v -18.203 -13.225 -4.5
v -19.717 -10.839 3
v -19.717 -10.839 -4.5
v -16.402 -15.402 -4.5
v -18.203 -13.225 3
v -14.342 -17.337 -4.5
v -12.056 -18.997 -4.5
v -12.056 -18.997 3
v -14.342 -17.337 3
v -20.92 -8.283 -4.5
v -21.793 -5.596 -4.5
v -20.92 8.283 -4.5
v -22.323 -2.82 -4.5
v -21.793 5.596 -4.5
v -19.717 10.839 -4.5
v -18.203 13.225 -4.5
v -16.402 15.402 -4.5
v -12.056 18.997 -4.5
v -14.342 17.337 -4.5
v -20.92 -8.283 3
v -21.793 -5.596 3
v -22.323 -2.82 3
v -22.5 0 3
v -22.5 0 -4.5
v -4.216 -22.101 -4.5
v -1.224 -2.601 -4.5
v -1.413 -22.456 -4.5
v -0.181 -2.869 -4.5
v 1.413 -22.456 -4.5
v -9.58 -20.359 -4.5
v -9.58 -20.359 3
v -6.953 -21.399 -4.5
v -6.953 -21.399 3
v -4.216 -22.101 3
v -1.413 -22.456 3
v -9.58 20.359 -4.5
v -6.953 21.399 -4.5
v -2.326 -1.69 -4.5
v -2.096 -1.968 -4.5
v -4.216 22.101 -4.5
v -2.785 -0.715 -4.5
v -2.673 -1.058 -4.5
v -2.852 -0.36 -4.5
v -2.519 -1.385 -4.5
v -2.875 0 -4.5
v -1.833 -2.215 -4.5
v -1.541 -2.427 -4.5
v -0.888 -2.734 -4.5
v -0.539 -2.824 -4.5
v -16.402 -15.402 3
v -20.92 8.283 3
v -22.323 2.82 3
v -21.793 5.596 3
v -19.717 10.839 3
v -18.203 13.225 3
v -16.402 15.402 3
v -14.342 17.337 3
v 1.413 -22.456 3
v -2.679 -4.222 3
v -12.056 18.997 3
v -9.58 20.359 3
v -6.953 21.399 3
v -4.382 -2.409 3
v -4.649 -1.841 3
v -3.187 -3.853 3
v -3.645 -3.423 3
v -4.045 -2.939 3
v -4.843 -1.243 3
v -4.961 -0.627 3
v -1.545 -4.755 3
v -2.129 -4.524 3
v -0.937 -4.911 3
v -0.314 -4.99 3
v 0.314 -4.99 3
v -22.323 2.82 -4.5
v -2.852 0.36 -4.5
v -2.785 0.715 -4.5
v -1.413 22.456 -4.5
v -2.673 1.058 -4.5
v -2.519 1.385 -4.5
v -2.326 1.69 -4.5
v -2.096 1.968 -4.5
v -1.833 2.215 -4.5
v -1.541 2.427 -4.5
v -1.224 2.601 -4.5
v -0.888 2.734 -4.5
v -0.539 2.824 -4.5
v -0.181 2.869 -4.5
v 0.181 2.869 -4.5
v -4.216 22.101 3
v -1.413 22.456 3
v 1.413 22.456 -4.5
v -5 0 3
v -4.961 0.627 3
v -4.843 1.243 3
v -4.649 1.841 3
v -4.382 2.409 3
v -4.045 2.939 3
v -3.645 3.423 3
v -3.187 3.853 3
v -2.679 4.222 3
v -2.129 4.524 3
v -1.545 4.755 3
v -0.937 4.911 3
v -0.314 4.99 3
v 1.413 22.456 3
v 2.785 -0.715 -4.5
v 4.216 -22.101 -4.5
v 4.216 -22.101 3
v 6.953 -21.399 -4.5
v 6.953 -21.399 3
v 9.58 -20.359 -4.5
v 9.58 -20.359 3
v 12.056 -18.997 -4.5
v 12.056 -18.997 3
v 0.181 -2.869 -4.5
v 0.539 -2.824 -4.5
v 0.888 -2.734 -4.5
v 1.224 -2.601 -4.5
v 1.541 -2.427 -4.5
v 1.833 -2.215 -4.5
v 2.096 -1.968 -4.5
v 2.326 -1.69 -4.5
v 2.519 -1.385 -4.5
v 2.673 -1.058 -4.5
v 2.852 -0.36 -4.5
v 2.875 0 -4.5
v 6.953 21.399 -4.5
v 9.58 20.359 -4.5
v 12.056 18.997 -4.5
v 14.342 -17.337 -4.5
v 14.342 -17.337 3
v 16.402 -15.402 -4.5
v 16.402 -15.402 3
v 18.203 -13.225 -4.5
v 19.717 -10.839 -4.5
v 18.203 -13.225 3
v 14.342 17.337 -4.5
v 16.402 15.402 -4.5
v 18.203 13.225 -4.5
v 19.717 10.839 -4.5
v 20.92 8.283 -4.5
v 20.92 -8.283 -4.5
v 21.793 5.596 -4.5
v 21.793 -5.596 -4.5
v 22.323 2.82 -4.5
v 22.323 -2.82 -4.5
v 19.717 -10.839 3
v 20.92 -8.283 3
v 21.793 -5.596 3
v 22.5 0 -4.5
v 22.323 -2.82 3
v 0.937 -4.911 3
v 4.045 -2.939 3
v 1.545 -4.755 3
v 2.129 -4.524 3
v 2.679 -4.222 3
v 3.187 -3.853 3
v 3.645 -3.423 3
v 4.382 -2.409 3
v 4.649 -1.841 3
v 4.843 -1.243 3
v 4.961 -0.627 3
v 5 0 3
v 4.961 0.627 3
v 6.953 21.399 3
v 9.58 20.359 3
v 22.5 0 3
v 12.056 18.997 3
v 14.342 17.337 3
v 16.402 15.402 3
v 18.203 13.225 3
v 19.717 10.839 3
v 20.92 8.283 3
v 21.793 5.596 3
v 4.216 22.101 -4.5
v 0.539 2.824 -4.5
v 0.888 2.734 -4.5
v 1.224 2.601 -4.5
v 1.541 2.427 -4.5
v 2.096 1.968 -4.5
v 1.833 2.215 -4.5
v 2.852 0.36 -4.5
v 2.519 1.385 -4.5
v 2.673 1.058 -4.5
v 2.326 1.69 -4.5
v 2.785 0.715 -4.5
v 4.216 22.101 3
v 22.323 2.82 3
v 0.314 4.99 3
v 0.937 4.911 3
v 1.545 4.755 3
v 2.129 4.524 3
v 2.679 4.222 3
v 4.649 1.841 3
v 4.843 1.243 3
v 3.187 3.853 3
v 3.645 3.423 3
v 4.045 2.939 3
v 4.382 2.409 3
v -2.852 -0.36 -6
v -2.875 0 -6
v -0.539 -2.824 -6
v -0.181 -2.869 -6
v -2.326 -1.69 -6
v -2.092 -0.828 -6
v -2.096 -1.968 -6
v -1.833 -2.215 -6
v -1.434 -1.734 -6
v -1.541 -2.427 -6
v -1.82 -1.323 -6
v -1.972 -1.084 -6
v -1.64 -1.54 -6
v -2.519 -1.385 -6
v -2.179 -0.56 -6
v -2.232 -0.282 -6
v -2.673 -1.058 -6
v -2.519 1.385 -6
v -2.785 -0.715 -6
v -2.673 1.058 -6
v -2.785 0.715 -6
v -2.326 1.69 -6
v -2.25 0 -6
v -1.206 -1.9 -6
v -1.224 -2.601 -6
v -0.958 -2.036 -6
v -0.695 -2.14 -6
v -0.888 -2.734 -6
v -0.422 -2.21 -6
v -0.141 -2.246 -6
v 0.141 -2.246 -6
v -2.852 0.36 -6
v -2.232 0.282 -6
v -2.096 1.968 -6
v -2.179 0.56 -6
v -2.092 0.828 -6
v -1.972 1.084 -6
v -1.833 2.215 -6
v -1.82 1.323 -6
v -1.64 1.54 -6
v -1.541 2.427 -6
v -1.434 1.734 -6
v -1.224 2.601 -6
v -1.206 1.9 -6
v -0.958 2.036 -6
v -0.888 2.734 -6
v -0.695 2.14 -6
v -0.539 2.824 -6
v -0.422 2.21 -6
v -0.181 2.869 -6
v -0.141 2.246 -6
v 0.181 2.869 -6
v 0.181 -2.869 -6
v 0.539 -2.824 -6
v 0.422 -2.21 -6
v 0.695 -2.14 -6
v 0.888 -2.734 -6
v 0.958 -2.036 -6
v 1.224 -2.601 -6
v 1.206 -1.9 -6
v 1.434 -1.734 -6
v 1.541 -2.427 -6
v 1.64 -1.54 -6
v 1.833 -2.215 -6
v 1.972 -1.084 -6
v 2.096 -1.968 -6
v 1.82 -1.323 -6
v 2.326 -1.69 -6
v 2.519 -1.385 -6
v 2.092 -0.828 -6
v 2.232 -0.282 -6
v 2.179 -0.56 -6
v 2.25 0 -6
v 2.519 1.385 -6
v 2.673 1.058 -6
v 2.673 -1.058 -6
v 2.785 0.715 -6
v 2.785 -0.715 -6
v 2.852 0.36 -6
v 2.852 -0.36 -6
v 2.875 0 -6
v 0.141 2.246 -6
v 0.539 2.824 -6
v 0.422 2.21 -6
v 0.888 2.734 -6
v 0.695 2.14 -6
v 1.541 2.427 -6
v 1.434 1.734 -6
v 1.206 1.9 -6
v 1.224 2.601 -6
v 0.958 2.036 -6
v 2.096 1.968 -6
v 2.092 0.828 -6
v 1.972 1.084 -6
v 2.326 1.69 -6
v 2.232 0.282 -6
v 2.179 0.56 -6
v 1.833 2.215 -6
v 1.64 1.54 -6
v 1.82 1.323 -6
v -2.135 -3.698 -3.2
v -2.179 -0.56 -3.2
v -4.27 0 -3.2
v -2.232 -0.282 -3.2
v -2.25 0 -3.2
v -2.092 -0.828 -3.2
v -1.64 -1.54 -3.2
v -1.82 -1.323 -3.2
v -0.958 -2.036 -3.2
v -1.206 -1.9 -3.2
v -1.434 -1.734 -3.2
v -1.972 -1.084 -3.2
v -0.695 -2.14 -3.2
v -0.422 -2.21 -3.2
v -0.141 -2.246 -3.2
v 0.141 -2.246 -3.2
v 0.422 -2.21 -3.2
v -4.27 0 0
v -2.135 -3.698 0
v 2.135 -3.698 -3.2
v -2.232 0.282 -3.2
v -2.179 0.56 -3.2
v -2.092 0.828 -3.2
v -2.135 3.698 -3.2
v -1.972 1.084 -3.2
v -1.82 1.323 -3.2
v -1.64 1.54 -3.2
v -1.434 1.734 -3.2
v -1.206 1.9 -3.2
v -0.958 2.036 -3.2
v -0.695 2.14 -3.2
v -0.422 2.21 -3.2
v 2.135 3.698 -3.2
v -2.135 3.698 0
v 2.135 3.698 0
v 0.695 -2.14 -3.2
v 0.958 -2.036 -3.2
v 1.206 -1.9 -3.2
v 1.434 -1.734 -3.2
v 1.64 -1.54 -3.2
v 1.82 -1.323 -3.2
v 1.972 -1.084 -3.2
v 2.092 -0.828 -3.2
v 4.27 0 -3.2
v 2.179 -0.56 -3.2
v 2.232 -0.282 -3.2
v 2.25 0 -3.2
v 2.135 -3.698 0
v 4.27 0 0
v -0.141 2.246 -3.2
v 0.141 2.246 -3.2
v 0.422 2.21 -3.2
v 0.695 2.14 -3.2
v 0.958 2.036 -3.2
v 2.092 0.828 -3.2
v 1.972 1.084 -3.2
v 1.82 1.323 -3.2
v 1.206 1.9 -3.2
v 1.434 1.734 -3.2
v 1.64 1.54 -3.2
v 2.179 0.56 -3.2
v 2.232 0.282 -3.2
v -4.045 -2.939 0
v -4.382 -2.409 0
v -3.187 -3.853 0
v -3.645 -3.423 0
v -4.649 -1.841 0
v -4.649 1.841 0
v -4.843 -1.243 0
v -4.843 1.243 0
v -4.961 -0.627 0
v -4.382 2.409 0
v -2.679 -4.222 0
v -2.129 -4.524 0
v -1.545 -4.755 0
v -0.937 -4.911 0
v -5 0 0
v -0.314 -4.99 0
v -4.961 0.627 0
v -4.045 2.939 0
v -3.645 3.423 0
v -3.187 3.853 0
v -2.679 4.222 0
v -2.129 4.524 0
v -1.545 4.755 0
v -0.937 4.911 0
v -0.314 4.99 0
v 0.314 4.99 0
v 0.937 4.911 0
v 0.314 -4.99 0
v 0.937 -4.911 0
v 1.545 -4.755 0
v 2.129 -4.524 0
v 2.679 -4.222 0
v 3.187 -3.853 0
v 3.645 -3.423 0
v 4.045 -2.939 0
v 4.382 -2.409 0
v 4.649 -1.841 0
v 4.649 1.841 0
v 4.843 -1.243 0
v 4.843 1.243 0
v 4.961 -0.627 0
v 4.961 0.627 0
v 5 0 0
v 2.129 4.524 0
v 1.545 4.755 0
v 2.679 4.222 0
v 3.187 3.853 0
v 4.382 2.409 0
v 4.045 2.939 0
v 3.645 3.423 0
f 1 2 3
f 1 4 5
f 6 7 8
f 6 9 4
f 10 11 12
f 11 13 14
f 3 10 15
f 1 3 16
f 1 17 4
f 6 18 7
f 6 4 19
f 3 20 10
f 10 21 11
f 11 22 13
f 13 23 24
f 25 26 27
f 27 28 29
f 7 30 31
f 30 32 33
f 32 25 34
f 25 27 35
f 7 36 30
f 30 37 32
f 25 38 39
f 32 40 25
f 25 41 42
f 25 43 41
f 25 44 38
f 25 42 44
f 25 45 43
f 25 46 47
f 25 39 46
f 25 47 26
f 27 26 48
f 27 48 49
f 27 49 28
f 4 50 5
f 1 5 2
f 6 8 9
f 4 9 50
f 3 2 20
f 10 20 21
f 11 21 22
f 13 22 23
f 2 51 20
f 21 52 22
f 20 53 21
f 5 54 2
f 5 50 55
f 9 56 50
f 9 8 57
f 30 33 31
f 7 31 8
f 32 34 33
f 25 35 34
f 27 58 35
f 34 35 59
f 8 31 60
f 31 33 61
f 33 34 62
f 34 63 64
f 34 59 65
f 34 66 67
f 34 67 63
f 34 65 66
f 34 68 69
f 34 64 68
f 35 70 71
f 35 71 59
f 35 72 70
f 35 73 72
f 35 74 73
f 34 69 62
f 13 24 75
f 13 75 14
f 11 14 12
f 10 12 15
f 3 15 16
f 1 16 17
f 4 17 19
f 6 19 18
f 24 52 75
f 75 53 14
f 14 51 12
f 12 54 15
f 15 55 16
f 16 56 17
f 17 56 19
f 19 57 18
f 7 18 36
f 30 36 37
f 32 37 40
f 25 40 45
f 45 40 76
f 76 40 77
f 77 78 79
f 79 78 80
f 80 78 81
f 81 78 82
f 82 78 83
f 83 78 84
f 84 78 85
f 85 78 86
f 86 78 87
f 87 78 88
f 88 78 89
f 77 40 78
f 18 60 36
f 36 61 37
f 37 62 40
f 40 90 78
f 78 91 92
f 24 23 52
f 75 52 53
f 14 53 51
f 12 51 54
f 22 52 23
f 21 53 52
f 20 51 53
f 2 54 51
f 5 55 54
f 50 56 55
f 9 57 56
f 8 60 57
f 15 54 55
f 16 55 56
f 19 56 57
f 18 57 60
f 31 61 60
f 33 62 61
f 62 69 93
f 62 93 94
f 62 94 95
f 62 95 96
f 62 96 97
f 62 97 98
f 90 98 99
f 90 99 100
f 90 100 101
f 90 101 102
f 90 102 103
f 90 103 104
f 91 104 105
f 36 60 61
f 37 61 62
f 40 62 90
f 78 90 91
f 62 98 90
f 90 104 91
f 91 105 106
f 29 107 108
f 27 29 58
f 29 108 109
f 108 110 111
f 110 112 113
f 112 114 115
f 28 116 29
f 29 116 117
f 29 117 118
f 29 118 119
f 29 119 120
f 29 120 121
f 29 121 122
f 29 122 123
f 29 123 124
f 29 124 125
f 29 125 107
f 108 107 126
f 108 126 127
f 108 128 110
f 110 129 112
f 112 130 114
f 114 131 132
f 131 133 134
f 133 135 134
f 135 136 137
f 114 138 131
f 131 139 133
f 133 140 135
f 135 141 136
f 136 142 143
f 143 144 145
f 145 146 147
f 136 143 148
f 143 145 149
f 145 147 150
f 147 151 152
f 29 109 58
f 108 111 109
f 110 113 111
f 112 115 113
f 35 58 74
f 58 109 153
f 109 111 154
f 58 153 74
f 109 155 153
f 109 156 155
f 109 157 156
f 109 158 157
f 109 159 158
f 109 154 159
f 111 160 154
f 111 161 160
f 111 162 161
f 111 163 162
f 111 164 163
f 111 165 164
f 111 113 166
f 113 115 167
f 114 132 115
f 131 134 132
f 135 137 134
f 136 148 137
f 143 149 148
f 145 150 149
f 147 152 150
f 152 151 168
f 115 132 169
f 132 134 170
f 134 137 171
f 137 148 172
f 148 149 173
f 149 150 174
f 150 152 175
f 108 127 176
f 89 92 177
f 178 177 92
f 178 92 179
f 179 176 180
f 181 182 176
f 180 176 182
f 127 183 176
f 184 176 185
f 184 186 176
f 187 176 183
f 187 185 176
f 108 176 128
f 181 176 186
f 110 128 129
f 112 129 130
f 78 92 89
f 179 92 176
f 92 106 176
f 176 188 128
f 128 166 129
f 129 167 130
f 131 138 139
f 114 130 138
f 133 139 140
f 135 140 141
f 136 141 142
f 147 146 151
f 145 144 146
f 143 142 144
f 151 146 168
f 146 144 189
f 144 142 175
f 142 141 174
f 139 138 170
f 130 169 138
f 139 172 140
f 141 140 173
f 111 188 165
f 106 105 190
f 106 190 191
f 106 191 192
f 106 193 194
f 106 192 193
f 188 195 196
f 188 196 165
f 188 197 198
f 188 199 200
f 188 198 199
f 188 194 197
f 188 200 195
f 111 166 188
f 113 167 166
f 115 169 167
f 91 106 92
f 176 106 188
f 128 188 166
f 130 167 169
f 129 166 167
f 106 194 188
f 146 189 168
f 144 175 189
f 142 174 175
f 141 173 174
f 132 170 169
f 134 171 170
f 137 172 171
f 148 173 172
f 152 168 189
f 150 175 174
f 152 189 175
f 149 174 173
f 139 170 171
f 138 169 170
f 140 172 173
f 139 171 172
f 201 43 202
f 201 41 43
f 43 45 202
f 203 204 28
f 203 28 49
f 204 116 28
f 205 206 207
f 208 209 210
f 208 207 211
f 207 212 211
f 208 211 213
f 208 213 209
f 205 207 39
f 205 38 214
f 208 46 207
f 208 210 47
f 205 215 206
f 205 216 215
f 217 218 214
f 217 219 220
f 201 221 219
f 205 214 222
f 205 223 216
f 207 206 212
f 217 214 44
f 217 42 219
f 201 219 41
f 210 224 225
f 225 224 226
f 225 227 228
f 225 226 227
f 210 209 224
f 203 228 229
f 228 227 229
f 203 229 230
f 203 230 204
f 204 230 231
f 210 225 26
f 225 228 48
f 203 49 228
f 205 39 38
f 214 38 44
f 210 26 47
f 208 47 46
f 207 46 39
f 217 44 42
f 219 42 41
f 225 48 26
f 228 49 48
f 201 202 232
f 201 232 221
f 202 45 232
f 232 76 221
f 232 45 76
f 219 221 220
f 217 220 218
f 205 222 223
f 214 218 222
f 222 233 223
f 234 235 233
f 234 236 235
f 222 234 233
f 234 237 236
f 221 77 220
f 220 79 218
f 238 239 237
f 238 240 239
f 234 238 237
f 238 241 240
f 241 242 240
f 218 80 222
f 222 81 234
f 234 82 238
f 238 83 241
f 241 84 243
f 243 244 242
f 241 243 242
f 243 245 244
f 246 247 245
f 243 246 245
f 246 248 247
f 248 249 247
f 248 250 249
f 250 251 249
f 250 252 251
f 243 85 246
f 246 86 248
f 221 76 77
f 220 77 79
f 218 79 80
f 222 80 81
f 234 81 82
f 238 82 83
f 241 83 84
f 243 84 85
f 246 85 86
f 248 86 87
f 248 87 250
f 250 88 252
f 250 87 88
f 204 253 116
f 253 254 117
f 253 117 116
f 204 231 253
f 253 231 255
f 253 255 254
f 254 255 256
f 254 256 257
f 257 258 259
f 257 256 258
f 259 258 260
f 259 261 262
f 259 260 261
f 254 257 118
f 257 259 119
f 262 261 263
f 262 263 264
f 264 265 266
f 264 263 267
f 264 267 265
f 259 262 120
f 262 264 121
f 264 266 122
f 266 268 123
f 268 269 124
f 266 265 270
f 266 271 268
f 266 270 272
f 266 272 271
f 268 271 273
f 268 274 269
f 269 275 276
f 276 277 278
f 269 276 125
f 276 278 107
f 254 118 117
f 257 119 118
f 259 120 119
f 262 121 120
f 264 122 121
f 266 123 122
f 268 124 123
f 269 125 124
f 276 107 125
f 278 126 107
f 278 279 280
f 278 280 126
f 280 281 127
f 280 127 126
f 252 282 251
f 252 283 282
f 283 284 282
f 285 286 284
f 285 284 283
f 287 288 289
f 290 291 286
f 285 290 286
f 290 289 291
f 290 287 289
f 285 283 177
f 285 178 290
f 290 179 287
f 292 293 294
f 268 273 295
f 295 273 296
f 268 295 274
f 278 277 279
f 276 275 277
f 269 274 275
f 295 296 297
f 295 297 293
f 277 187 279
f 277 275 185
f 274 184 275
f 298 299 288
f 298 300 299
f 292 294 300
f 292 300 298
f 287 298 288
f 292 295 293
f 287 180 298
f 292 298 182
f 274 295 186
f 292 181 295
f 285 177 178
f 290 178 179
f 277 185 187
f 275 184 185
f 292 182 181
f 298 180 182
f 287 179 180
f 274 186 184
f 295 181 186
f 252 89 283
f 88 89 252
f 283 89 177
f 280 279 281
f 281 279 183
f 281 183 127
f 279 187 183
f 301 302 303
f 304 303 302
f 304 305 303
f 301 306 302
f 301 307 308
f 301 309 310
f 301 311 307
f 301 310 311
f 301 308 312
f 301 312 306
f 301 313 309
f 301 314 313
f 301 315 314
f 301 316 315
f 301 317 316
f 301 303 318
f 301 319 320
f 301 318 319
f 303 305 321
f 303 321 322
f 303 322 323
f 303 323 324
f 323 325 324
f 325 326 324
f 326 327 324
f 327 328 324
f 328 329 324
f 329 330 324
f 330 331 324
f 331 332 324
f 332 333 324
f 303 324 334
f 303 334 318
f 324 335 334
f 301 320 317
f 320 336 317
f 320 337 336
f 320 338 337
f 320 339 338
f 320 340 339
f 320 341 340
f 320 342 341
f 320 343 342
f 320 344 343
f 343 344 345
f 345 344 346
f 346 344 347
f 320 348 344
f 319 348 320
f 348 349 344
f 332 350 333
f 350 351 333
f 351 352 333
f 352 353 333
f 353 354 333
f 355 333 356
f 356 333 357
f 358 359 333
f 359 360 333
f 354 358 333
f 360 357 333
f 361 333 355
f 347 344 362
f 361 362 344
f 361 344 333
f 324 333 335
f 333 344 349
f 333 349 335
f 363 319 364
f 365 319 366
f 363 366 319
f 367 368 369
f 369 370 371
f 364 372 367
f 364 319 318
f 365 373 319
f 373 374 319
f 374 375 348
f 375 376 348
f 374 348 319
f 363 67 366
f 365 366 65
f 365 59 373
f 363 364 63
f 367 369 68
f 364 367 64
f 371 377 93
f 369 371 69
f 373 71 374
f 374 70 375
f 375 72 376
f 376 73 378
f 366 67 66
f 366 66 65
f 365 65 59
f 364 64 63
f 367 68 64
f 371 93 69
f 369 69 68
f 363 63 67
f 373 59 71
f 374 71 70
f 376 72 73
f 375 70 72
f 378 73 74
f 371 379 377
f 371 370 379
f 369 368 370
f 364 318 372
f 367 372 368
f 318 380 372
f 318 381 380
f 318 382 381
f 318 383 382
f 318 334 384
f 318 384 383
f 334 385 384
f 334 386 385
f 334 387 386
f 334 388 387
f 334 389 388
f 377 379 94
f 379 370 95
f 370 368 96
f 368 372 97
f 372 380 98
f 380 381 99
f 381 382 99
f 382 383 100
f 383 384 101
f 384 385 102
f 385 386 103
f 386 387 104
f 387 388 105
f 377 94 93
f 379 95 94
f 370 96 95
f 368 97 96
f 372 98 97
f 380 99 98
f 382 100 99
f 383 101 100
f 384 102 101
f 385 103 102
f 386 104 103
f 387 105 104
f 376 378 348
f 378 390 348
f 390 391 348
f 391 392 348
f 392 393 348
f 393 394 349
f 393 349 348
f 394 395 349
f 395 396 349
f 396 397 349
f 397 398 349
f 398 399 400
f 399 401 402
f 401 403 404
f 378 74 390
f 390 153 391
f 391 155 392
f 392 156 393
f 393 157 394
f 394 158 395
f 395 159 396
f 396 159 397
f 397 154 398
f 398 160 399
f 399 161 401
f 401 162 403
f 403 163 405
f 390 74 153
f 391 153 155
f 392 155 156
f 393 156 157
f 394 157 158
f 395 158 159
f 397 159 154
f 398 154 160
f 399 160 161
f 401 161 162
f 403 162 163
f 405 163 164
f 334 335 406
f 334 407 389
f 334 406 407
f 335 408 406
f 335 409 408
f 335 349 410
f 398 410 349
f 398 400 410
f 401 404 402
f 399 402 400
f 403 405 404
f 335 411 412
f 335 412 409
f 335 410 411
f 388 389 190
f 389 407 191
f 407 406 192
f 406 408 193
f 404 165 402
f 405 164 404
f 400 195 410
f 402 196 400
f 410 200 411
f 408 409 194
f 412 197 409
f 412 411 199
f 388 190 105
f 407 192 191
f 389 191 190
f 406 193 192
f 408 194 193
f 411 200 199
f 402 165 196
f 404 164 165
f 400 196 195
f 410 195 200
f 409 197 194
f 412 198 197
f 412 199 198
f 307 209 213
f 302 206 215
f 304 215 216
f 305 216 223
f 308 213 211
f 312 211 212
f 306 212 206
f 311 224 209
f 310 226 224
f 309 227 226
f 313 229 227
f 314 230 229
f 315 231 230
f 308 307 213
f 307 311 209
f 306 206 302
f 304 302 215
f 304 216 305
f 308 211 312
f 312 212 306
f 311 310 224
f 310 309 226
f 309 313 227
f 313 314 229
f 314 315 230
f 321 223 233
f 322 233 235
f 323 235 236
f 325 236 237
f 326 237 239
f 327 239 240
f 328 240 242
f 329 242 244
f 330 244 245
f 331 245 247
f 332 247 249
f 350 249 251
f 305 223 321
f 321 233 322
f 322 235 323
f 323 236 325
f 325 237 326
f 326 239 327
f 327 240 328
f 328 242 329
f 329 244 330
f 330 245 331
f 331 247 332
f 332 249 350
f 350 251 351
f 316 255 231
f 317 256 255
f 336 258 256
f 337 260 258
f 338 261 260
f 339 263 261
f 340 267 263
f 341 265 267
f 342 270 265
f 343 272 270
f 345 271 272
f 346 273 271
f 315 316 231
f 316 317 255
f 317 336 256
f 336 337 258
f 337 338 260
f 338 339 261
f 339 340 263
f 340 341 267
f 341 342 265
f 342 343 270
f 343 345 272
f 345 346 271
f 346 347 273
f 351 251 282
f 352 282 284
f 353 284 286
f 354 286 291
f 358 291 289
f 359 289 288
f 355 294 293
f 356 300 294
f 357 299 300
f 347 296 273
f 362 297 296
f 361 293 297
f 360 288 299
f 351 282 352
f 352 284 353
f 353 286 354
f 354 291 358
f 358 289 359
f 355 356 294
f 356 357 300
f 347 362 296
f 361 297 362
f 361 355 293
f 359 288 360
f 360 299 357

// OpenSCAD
$fn = 50;

difference() {
	union() {
		translate(v = [0, 0, -4.5]) {
			cylinder(h = 7.5, r = 22.5);
		}
		#translate(v = [0, 0, -6.0]) {
			cylinder(h = 6, r = 2.875);
		}
	}
	union() {
		translate(v = [0, 0, 0]) {
			rotate(a = [0, 0, 0]) {
				difference() {
					union() {
						translate(v = [0, 0, -3.2]) {
							linear_extrude(height = 3.2) {
								polygon(points = [[4.2698, 0.0], [2.1349000000000005, 3.697755269078796], [-2.134899999999999, 3.6977552690787965], [-4.2698, 5.228996902999369e-16], [-2.134900000000002, -3.6977552690787956], [2.1348999999999974, -3.697755269078798]]);
							}
						}
					}
					union();
				}
			}
		}
		#cylinder(h = 3, r = 5.0);
		#translate(v = [0, 0, -100.0]) {
			cylinder(h = 200, r = 2.25);
		}
	}
}
